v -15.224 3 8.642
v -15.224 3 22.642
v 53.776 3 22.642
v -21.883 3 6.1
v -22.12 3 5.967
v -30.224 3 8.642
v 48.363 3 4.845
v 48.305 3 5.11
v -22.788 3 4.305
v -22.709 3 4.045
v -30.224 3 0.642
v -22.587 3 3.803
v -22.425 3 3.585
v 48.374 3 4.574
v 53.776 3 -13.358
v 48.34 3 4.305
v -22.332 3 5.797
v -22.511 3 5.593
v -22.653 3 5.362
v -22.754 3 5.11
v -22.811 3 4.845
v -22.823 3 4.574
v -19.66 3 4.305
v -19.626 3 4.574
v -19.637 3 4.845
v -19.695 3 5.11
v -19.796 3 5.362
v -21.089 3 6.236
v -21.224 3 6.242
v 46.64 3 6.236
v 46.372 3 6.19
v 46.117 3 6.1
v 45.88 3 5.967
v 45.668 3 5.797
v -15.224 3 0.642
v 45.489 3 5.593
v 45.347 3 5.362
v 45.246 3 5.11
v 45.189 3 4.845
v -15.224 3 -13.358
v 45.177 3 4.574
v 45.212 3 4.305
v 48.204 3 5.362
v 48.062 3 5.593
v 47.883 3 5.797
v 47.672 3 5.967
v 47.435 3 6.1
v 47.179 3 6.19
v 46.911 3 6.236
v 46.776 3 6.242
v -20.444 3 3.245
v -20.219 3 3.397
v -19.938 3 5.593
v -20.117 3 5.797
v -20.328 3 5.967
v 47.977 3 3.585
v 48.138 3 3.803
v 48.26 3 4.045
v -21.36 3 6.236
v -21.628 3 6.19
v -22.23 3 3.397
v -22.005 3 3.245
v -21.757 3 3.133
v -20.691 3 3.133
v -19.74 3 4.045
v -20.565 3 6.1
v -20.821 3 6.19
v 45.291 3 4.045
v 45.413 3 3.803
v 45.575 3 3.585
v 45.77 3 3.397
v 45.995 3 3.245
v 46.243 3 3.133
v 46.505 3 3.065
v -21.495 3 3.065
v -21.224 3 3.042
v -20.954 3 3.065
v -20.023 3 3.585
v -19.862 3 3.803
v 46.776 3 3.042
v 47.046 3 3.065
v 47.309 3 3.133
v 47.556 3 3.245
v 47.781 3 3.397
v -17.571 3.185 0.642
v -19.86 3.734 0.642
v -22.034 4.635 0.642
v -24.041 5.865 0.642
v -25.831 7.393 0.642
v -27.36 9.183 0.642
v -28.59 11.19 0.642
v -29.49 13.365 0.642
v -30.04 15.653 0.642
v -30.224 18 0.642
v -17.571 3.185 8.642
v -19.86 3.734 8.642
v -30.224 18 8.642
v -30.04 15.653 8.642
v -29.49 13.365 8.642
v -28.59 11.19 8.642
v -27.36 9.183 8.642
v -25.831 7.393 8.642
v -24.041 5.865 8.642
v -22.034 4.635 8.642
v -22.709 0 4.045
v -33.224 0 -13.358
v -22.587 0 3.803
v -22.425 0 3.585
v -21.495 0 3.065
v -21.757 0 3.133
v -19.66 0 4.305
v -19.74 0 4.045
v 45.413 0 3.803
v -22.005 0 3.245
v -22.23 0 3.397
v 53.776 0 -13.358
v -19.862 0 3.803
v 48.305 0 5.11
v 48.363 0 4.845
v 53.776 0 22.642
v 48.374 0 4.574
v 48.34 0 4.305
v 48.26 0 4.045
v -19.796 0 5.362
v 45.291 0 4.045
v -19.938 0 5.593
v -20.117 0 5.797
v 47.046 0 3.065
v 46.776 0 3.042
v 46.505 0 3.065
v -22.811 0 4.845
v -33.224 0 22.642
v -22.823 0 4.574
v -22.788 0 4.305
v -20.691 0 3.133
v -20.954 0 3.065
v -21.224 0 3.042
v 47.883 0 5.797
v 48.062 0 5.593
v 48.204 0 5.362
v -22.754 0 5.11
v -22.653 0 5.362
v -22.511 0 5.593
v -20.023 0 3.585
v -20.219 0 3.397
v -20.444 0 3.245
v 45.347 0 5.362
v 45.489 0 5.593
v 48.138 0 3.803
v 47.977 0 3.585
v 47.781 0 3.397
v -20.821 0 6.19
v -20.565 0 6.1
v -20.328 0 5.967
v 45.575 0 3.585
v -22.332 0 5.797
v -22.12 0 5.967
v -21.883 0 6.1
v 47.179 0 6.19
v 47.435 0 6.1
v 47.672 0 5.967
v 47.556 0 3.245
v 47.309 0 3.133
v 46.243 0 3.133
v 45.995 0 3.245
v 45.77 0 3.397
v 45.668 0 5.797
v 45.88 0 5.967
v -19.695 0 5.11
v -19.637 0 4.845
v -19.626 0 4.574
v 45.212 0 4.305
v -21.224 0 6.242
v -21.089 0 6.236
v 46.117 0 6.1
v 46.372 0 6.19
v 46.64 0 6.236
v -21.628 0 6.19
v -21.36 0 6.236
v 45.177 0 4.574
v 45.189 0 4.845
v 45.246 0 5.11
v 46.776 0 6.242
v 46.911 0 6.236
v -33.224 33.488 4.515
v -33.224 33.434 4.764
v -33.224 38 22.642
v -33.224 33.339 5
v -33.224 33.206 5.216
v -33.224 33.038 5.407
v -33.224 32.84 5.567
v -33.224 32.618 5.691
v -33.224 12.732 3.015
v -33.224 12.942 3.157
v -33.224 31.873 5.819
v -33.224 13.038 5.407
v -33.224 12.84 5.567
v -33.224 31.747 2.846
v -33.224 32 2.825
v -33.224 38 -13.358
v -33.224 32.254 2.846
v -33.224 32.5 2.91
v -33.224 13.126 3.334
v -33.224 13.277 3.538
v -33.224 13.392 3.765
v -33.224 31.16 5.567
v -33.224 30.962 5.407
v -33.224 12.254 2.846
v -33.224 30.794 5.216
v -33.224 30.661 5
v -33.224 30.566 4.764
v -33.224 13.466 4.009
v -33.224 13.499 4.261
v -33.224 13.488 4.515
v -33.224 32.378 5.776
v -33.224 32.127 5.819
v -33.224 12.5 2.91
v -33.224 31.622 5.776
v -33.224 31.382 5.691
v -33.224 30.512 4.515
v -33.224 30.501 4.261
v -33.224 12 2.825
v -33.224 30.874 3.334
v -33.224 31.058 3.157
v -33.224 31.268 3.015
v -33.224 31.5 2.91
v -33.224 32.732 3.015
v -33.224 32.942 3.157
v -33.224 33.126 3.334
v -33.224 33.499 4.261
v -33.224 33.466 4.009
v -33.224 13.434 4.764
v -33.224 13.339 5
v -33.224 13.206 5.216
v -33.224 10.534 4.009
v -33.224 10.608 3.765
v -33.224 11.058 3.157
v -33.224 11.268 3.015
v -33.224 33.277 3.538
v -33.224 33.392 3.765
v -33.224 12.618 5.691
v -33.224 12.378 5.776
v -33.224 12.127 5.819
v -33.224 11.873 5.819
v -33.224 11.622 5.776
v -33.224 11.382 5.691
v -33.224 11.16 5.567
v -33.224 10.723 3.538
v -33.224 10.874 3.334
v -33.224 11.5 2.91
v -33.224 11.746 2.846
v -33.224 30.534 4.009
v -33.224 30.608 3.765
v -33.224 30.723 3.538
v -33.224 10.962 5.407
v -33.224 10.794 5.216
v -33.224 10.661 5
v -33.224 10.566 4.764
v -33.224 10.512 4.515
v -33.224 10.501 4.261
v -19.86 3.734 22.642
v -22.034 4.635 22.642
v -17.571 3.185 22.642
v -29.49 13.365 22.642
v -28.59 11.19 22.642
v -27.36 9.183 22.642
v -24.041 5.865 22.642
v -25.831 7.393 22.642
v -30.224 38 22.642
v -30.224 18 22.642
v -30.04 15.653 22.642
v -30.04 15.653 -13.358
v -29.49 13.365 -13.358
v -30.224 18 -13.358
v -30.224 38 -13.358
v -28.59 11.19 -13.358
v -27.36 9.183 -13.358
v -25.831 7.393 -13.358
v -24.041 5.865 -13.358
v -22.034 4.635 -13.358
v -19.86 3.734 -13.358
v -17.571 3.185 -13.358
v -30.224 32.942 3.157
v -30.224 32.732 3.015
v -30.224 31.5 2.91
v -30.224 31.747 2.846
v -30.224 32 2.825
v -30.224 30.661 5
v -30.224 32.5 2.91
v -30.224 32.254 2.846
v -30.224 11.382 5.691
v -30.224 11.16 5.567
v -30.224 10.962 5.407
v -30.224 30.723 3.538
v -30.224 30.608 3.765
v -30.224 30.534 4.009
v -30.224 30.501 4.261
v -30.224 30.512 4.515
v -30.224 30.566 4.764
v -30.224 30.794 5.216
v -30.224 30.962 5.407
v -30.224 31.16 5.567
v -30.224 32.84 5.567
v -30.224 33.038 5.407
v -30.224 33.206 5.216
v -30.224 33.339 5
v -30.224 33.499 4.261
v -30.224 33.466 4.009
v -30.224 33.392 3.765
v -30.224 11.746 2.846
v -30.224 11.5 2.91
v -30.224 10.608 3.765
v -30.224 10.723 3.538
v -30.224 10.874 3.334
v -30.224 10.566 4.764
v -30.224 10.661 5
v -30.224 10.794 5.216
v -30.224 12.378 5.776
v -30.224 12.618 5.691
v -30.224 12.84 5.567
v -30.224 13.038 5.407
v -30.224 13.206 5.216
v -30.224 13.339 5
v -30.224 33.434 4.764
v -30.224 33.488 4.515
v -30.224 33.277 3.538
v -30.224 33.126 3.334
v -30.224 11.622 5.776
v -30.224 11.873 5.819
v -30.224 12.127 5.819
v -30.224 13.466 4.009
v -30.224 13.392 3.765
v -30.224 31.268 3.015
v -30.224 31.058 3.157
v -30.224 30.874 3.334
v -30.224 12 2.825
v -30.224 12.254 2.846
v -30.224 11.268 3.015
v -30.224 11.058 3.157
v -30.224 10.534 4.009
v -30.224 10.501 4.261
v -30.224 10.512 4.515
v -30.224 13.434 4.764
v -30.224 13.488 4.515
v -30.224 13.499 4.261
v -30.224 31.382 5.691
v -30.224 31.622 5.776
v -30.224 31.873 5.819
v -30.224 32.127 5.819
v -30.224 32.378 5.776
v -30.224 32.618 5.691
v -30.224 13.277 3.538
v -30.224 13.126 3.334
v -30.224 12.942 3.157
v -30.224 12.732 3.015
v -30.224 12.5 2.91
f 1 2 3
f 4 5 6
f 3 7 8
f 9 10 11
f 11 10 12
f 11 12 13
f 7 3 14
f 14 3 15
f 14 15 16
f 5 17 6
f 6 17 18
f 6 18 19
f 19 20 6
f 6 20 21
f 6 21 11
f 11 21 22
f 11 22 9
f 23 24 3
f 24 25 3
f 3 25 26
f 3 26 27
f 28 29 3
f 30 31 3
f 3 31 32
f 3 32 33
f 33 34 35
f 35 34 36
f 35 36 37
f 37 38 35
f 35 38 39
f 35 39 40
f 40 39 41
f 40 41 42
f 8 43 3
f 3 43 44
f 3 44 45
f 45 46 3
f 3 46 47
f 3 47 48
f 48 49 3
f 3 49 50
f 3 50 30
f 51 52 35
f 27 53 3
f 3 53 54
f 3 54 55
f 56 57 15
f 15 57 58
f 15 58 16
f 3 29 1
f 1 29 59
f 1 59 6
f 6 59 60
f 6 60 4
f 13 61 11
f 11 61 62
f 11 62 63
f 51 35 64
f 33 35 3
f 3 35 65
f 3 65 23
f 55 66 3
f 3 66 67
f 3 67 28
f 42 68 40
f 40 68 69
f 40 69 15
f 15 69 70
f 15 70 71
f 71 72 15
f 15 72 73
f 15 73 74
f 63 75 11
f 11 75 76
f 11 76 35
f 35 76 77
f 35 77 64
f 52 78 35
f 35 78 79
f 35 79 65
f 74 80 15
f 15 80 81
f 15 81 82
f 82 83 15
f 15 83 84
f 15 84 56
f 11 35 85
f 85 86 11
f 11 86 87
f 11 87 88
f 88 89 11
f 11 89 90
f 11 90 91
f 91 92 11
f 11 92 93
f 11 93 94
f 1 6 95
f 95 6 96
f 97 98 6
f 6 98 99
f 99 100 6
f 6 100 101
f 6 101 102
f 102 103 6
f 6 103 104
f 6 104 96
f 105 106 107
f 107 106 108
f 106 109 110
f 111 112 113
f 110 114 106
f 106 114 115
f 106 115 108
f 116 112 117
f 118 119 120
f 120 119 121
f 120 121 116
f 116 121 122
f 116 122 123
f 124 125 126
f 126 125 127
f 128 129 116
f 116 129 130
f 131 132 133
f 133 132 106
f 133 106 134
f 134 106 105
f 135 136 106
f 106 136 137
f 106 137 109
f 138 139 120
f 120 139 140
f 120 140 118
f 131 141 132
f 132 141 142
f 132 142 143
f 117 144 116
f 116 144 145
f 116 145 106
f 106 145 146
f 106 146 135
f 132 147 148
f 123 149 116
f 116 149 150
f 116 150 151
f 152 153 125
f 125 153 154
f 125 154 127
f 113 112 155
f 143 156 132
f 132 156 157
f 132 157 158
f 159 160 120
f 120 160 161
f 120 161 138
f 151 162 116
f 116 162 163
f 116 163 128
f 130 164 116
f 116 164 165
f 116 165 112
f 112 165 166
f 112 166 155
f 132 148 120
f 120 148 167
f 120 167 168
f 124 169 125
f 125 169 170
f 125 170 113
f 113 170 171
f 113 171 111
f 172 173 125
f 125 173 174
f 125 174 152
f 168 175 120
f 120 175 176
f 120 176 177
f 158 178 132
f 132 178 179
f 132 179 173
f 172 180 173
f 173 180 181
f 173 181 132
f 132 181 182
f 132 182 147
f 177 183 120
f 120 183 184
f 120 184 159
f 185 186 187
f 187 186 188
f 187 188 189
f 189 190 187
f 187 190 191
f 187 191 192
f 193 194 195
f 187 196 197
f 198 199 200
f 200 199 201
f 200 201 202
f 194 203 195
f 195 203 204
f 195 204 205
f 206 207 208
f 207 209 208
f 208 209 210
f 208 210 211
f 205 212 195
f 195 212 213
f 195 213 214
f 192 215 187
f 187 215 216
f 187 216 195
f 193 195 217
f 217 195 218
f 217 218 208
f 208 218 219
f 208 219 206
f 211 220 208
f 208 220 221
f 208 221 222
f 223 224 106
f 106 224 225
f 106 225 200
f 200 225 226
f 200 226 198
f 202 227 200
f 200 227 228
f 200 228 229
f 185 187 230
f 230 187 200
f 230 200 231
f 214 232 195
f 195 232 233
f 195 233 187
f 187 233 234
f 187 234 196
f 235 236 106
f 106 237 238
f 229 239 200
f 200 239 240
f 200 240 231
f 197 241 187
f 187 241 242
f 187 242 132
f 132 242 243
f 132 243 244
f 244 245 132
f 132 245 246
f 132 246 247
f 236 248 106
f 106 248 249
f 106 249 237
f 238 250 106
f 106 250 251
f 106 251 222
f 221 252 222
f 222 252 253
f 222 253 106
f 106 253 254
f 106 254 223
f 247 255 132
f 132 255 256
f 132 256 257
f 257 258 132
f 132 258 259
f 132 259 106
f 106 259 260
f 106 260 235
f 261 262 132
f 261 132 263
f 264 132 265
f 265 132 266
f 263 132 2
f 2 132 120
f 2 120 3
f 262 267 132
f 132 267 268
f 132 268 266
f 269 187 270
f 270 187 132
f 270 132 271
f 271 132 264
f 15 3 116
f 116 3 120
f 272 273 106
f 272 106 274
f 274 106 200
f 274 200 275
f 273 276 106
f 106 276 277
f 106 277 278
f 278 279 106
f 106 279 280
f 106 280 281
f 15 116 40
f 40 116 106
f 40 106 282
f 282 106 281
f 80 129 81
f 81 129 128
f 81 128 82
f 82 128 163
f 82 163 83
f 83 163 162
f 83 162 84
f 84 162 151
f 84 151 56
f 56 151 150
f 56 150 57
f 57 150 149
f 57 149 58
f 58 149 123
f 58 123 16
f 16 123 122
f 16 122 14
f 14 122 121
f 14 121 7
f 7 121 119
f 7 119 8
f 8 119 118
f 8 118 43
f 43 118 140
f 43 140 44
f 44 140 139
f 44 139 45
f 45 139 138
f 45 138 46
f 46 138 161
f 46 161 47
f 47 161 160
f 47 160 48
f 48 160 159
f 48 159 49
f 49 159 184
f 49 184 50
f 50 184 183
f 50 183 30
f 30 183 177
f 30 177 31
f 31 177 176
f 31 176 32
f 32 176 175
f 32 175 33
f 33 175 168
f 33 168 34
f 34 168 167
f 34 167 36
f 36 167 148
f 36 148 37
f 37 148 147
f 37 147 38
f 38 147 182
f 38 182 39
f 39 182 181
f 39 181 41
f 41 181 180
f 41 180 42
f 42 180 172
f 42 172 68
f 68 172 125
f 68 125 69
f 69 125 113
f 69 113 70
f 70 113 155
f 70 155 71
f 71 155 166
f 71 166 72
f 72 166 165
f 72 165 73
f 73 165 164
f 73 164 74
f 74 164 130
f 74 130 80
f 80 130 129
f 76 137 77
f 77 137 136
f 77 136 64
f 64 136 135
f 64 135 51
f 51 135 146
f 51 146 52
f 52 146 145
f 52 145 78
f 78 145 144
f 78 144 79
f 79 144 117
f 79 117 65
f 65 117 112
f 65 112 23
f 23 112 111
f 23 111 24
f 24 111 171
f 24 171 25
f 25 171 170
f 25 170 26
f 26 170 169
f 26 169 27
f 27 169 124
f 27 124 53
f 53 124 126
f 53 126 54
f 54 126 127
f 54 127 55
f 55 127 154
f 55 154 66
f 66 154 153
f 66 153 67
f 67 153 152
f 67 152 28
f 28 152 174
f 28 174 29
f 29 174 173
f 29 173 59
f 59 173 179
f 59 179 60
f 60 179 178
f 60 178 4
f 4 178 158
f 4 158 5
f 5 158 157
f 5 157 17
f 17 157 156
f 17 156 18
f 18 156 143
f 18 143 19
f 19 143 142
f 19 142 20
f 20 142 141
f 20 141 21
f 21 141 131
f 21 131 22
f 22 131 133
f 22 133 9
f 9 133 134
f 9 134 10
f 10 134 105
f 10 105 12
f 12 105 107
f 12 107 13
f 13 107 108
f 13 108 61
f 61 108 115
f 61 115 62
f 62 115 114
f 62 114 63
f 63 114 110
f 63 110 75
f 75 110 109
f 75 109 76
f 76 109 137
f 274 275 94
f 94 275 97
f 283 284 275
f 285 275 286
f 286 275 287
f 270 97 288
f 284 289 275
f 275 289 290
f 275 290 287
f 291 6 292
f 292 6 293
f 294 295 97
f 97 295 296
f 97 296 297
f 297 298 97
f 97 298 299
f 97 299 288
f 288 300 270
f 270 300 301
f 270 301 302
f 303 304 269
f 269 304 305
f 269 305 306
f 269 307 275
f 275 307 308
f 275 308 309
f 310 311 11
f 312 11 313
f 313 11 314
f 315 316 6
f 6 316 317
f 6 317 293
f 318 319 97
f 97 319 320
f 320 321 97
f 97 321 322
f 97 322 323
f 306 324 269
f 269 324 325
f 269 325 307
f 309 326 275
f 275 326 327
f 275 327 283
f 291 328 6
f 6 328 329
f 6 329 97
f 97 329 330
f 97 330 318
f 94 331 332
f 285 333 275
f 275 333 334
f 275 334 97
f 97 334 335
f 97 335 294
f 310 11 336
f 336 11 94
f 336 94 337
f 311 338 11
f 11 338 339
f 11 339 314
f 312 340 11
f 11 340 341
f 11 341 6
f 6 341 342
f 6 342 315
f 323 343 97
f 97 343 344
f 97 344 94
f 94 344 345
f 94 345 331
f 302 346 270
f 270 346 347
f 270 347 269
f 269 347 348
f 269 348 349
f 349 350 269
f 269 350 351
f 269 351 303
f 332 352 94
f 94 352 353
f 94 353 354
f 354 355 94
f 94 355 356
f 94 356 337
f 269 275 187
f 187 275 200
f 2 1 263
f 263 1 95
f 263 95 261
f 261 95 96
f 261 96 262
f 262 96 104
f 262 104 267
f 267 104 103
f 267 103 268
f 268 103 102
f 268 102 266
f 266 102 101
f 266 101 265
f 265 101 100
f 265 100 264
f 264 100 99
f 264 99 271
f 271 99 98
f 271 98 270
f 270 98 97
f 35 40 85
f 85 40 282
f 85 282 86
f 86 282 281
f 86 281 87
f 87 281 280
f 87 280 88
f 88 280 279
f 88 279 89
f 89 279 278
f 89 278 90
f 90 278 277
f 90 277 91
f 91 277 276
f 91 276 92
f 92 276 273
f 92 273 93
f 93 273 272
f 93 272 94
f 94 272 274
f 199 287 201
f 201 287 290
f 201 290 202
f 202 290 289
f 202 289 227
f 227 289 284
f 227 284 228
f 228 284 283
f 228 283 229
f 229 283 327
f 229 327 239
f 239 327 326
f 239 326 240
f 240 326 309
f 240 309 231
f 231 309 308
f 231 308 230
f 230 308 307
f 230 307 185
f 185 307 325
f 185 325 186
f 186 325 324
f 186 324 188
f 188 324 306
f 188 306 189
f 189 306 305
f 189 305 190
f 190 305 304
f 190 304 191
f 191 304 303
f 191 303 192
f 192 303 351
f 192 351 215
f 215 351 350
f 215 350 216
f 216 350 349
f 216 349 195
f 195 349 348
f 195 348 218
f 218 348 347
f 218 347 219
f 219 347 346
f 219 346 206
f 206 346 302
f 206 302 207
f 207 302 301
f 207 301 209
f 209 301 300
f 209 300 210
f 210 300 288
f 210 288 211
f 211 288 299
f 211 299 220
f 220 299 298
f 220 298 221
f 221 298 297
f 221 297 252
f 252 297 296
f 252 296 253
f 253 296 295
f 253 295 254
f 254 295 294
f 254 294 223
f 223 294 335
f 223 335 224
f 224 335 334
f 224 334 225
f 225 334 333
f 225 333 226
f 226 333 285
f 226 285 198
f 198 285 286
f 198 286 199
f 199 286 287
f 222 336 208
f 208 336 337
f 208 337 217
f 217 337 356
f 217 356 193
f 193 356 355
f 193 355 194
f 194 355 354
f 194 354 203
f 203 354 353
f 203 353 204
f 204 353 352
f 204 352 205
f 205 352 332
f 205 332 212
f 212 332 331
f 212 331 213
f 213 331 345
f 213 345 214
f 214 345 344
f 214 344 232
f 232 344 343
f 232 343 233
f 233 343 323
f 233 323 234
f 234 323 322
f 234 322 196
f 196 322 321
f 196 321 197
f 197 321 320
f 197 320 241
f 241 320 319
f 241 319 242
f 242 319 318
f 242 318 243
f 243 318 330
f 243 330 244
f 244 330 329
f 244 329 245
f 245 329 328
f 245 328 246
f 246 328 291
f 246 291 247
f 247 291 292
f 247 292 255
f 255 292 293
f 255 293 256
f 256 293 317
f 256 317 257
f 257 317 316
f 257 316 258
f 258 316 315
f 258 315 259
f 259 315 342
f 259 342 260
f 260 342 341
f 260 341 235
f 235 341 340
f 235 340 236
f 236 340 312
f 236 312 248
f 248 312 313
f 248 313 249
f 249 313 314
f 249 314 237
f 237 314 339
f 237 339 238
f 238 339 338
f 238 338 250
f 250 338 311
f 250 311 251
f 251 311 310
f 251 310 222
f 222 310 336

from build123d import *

# Parameters (mm, degrees)
SKETCH1_W           = 87
SKETCH1_H           = 36
SKETCH1_R           = 1.6
BOSS_EXTRUDE1_DEPTH = 3
SKETCH2_W           = 3
SKETCH2_H           = 14
BOSS_EXTRUDE2_DEPTH = 35
FILLET2_R           = 15
SKETCH3_W           = 3
SKETCH3_H           = 8
BOSS_EXTRUDE3_DEPTH = 35
SKETCH4_R           = 1.5
CUT_EXTRUDE1_DEPTH  = 30


with BuildPart() as part:
    # Sketch1 → Boss-Extrude1 (new body)
    with BuildSketch(Plane(origin=(0, 0, 0), x_dir=(1, 0, 0), z_dir=(0, 1, 0))):
        with Locations((10.275590551, -4.641732283)):
            Rectangle(SKETCH1_W, SKETCH1_H)
        with Locations((46.775590551, -4.641732283)):
            Circle(SKETCH1_R, mode=Mode.SUBTRACT)
        with Locations((-21.224409449, -4.641732283)):
            Circle(SKETCH1_R, mode=Mode.SUBTRACT)
    extrude(amount=BOSS_EXTRUDE1_DEPTH)

    # Sketch2 → Boss-Extrude2 (add)
    with BuildSketch(Plane(origin=(0, 3, 0), x_dir=(1, 0, 0), z_dir=(0, 1, 0))):
        with Locations((-31.724409449, 6.358267717)):
            Rectangle(SKETCH2_W, SKETCH2_H)
        with Locations((-31.724409449, -15.641732283)):
            Rectangle(SKETCH2_W, SKETCH2_H)
    extrude(amount=BOSS_EXTRUDE2_DEPTH)

    # Fillet2
    fillet2_edges = [part.edges().sort_by_distance(p)[0] for p in [
        (-30.224409449, 3, -6.358267717),
        (-30.224409449, 3, 15.641732283),
    ]]
    fillet(fillet2_edges, radius=FILLET2_R)

    # Sketch3 → Boss-Extrude3 (add)
    with BuildSketch(Plane(origin=(0, 3, 0), x_dir=(1, 0, 0), z_dir=(0, 1, 0))):
        with Locations((-31.724409449, -4.641732283)):
            Rectangle(SKETCH3_W, SKETCH3_H)
    extrude(amount=BOSS_EXTRUDE3_DEPTH)

    # Sketch4 → Cut-Extrude1 (cut)
    with BuildSketch(Plane(origin=(-30.224409449, 0, 0), x_dir=(0, 0, -1), z_dir=(1, 0, 0))):
        with Locations((-4.324534662, 32)):
            Circle(SKETCH4_R)
        with Locations((-4.324534662, 12)):
            Circle(SKETCH4_R)
    extrude(amount=-CUT_EXTRUDE1_DEPTH, mode=Mode.SUBTRACT)


solid = part.part
